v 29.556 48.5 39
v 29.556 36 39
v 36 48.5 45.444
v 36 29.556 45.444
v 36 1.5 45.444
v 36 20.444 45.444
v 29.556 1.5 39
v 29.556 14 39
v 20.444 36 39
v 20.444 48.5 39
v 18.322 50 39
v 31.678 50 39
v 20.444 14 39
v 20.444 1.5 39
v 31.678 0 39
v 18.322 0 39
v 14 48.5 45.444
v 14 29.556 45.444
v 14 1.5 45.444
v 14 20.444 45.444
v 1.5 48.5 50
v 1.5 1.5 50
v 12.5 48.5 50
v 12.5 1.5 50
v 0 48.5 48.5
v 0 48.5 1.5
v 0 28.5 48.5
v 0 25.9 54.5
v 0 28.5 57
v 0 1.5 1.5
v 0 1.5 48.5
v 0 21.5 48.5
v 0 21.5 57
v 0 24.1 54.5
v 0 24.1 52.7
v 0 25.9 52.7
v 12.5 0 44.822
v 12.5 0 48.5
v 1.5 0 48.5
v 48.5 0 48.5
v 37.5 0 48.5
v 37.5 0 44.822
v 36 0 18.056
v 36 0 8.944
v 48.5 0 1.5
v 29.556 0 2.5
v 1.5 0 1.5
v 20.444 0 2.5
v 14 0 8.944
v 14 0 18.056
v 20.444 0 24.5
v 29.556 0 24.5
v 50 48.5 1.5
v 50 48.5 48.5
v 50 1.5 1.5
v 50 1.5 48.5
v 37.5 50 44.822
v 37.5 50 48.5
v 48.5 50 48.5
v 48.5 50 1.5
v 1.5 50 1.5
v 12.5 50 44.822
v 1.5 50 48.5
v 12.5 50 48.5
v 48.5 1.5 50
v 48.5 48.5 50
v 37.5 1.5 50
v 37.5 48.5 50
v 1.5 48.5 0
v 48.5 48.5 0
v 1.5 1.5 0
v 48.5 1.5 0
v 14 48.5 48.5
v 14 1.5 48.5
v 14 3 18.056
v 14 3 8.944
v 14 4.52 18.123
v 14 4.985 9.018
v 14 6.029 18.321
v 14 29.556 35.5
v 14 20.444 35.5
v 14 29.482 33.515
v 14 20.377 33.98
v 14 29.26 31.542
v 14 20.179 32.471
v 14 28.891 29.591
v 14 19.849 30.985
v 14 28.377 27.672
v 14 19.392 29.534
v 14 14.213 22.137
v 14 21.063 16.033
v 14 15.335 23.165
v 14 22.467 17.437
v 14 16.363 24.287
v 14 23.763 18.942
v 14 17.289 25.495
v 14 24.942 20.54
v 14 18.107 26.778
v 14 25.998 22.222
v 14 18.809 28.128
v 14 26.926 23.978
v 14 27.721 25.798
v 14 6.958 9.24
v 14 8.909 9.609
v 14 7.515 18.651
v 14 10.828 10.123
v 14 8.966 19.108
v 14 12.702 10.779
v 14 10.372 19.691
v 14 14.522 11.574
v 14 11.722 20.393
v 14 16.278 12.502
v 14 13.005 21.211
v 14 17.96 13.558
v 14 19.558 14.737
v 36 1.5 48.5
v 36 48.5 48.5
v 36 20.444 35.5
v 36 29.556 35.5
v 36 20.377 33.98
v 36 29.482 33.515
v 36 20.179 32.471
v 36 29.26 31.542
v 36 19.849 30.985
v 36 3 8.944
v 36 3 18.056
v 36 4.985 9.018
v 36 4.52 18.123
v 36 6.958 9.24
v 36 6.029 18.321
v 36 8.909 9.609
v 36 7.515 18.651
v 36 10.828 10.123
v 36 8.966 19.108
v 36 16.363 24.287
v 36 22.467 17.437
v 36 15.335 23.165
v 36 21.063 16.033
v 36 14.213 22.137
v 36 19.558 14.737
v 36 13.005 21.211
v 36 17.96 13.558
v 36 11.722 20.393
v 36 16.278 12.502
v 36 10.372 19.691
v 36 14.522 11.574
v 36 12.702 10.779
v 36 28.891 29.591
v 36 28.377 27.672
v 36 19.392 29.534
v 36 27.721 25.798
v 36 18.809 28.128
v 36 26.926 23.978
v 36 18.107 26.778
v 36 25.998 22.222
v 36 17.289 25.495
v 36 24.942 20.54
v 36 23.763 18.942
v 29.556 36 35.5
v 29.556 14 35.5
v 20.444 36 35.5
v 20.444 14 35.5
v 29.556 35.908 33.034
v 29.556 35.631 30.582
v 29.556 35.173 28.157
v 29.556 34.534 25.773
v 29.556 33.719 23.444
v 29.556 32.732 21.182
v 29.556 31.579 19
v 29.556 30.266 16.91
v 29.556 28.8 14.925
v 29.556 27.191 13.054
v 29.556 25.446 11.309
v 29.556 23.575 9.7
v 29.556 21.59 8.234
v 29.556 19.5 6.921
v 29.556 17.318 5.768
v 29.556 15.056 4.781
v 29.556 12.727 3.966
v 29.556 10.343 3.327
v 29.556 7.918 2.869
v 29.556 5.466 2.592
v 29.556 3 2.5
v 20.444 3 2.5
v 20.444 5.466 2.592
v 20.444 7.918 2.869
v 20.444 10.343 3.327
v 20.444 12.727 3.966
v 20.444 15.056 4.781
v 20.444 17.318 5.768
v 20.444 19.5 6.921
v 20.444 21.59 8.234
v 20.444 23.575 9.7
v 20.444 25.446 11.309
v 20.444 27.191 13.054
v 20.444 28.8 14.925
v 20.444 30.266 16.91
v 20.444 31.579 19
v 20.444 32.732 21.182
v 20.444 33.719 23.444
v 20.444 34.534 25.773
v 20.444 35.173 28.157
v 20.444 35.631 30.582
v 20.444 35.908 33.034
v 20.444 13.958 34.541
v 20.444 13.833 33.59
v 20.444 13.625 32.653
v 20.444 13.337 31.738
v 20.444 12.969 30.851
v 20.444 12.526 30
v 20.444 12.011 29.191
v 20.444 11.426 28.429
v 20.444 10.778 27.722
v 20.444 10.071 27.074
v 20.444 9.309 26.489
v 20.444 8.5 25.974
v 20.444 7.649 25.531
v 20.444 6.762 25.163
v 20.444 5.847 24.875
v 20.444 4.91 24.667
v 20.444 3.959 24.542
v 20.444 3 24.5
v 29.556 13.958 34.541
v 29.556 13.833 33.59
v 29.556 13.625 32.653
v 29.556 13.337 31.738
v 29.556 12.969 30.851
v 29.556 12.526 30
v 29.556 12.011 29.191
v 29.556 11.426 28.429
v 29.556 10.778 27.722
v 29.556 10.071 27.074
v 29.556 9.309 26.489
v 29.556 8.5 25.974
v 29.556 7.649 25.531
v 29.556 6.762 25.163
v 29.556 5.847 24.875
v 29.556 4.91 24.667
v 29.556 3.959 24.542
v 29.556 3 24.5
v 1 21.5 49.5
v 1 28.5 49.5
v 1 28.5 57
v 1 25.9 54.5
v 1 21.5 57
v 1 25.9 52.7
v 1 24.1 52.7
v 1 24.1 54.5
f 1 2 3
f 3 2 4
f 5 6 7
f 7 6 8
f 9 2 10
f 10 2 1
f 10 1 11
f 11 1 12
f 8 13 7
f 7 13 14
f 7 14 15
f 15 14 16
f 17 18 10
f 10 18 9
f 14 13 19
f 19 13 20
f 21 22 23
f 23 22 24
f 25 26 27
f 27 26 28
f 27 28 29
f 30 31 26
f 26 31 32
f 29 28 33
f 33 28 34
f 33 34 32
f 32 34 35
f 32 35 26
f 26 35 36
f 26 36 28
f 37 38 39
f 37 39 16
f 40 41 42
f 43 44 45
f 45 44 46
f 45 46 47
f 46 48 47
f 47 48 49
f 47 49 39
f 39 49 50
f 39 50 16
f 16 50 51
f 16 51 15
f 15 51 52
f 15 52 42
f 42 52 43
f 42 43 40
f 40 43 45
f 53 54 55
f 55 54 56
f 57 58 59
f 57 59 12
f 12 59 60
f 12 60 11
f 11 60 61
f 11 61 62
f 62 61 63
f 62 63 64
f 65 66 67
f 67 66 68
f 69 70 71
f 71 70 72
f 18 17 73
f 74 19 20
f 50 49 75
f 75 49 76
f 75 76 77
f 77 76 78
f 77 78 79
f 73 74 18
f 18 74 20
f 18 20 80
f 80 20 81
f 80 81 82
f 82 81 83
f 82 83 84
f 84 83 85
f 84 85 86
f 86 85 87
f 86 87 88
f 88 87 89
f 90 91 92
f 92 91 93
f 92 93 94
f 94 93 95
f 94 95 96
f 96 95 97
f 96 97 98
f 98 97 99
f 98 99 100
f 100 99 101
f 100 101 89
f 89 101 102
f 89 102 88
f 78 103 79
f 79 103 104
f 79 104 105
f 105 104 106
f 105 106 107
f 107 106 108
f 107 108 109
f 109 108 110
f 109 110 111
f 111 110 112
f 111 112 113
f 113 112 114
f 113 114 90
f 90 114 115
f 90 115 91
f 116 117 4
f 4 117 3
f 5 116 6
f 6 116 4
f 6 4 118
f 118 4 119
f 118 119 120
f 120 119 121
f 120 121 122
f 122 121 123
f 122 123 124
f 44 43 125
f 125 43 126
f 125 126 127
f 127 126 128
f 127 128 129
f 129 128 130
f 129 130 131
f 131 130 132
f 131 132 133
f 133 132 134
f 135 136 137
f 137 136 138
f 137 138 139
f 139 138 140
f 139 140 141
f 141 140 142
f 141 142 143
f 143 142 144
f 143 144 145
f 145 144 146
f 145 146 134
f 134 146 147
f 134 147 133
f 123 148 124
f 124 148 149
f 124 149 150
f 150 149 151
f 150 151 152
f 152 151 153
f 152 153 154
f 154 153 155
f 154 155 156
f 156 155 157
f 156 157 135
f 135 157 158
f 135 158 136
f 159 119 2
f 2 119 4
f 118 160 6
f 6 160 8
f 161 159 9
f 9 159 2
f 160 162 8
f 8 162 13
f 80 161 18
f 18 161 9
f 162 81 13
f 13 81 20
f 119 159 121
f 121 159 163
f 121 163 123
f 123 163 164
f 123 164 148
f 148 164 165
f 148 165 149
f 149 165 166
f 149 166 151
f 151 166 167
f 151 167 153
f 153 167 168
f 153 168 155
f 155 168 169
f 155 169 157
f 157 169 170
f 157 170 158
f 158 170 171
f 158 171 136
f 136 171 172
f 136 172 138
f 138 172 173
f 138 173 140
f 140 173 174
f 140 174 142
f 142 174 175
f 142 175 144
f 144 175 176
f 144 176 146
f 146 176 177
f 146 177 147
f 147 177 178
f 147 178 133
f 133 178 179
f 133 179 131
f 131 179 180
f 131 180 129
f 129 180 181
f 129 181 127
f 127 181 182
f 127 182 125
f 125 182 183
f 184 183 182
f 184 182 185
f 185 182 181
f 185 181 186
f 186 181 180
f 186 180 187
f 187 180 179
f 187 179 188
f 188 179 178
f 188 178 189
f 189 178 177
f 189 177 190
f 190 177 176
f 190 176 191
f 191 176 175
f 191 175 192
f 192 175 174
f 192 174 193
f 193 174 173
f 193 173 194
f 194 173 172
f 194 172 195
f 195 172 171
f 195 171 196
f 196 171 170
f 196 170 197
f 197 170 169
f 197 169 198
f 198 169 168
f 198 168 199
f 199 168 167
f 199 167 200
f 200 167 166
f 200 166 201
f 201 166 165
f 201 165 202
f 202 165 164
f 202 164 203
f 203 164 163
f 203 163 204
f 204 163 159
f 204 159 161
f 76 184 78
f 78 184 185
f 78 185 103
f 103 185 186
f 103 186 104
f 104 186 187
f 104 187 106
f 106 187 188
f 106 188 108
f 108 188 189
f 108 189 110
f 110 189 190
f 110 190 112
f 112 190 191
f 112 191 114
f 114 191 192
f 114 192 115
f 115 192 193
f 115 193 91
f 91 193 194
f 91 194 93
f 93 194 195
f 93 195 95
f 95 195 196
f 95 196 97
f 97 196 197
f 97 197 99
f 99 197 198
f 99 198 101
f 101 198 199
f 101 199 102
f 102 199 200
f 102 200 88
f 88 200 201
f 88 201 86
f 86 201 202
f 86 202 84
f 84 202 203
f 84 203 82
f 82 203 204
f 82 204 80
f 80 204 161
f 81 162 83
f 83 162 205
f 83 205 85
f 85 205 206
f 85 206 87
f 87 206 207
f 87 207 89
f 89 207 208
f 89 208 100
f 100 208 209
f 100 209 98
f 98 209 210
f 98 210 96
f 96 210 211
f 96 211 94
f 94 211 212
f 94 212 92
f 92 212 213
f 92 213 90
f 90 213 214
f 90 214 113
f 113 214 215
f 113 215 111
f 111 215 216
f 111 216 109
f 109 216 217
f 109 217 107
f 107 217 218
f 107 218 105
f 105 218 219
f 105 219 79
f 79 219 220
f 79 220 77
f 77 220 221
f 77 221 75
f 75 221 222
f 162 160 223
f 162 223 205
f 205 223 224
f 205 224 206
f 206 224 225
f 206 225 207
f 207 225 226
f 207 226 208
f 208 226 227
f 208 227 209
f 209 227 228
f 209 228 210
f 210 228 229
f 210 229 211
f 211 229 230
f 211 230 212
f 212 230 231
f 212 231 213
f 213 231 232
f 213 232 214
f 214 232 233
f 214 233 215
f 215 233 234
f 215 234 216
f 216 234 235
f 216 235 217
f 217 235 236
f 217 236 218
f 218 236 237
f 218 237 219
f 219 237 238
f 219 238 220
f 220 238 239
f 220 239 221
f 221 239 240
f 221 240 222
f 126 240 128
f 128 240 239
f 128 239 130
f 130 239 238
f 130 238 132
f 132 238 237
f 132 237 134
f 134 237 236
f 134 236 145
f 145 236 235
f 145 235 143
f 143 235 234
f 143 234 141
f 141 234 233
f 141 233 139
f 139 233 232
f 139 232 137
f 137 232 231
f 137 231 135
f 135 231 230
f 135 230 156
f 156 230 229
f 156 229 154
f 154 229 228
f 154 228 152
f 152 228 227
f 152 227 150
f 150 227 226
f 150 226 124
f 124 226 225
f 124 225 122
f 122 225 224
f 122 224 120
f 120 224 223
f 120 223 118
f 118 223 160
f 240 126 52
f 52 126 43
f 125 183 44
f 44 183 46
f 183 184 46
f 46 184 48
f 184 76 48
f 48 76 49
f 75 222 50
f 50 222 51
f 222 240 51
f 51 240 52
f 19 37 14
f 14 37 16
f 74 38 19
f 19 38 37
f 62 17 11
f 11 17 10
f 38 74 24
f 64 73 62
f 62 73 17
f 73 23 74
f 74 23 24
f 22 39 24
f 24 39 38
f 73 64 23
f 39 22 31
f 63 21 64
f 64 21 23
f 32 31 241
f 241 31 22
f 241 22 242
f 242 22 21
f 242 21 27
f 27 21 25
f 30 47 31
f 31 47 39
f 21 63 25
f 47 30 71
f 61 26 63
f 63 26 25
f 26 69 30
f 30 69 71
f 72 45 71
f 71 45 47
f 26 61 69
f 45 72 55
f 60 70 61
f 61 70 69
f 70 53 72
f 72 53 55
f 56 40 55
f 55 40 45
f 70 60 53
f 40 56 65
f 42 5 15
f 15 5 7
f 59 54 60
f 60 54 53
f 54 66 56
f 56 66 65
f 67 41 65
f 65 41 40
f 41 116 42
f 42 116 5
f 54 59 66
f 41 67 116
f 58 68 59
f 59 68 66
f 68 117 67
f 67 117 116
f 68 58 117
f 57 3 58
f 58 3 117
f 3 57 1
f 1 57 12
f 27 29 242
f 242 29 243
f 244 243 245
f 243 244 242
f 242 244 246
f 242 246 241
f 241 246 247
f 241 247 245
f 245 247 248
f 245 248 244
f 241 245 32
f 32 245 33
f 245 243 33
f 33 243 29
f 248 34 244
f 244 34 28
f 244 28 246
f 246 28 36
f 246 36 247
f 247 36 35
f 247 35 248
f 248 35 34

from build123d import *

# Parameters (mm, degrees)
SKETCH1_W                = 50
SKETCH1_H                = 50
BOSS_EXTRUDE1_DEPTH      = 50
CUT_EXTRUDE1_DEPTH       = 87.602540378
CHAMFER1_SIZE            = 1.5
BOSS_EXTRUDE2_DEPTH      = 7
BOSS_EXTRUDE2_DEPTH_BACK = 10
SKETCH5_W                = 1
SKETCH5_H                = 7
SKETCH6_W                = 1.8
SKETCH6_H                = 1.8
CUT_EXTRUDE2_DEPTH       = 7


with BuildPart() as part:
    # Sketch1 → Boss-Extrude1 (new body)
    with BuildSketch(Plane.XY):
        with Locations((25, 25)):
            Rectangle(SKETCH1_W, SKETCH1_H)
    extrude(amount=BOSS_EXTRUDE1_DEPTH)

    # Sketch2 → Cut-Extrude1 (cut, through all)
    with BuildSketch(Plane.XZ):
        Polygon((36, 45.443650814), (36, 54.556349186), (29.556349186, 61), (20.443650814, 61), (14, 54.556349186), (14, 45.443650814), (20.443650814, 39), (29.556349186, 39), align=None)
    extrude(amount=-CUT_EXTRUDE1_DEPTH, mode=Mode.SUBTRACT)

    # Cut-Sweep1: sweep along a path in Sketch4
    with BuildLine(Plane(origin=(25, 0, 0), x_dir=(0, 0, -1), z_dir=(1, 0, 0))) as cut_sweep1_path:
        Line((-13.5, 0), (-13.5, 3))
        ThreePointArc((-13.5, 3), (-19.943650814, 18.556349186), (-35.5, 25))
        Line((-35.5, 25), (-50, 25))
    # Sketch3 → Cut-Sweep1 (sweep, cut)
    with BuildSketch(Plane.XZ):
        Polygon((29.556349186, 24.5), (20.443650814, 24.5), (14, 18.056349186), (14, 8.943650814), (20.443650814, 2.5), (29.556349186, 2.5), (36, 8.943650814), (36, 18.056349186), align=None)
    sweep(path=cut_sweep1_path.line, mode=Mode.SUBTRACT)

    # Chamfer1
    chamfer1_edges = [part.edges().sort_by_distance(p)[0] for p in [
        (50, 25, 50),
        (43, 0, 50),
        (7, 50, 50),
        (36, 25, 50),
        (14, 25, 50),
        (14, 50, 47.721825407),
        (36, 50, 47.721825407),
        (36, 0, 47.721825407),
        (43, 50, 50),
        (14, 0, 47.721825407),
        (17.221825407, 0, 42.221825407),
        (32.778174593, 0, 42.221825407),
        (32.778174593, 50, 42.221825407),
        (17.221825407, 50, 42.221825407),
        (0, 25, 50),
        (25, 50, 0),
        (50, 25, 0),
        (25, 0, 0),
        (0, 25, 0),
        (7, 0, 50),
        (0, 50, 25),
        (50, 50, 25),
        (50, 0, 25),
        (0, 0, 25),
    ]]
    chamfer(chamfer1_edges, length=CHAMFER1_SIZE)

    # Sketch5 → Boss-Extrude2 (add, two sides: drawn at the far end of the back side and taken through both)
    with BuildSketch(Plane.XY.offset(50).offset(-BOSS_EXTRUDE2_DEPTH_BACK)):
        with Locations((0.5, 25)):
            Rectangle(SKETCH5_W, SKETCH5_H)
    extrude(amount=BOSS_EXTRUDE2_DEPTH + BOSS_EXTRUDE2_DEPTH_BACK)

    # Sketch6 → Cut-Extrude2 (cut)
    with BuildSketch(Plane(origin=(1, 0, 0), x_dir=(0, 0, -1), z_dir=(1, 0, 0))):
        with Locations((-53.6, 25)):
            Rectangle(SKETCH6_W, SKETCH6_H)
    extrude(amount=-CUT_EXTRUDE2_DEPTH, mode=Mode.SUBTRACT)


solid = part.part
